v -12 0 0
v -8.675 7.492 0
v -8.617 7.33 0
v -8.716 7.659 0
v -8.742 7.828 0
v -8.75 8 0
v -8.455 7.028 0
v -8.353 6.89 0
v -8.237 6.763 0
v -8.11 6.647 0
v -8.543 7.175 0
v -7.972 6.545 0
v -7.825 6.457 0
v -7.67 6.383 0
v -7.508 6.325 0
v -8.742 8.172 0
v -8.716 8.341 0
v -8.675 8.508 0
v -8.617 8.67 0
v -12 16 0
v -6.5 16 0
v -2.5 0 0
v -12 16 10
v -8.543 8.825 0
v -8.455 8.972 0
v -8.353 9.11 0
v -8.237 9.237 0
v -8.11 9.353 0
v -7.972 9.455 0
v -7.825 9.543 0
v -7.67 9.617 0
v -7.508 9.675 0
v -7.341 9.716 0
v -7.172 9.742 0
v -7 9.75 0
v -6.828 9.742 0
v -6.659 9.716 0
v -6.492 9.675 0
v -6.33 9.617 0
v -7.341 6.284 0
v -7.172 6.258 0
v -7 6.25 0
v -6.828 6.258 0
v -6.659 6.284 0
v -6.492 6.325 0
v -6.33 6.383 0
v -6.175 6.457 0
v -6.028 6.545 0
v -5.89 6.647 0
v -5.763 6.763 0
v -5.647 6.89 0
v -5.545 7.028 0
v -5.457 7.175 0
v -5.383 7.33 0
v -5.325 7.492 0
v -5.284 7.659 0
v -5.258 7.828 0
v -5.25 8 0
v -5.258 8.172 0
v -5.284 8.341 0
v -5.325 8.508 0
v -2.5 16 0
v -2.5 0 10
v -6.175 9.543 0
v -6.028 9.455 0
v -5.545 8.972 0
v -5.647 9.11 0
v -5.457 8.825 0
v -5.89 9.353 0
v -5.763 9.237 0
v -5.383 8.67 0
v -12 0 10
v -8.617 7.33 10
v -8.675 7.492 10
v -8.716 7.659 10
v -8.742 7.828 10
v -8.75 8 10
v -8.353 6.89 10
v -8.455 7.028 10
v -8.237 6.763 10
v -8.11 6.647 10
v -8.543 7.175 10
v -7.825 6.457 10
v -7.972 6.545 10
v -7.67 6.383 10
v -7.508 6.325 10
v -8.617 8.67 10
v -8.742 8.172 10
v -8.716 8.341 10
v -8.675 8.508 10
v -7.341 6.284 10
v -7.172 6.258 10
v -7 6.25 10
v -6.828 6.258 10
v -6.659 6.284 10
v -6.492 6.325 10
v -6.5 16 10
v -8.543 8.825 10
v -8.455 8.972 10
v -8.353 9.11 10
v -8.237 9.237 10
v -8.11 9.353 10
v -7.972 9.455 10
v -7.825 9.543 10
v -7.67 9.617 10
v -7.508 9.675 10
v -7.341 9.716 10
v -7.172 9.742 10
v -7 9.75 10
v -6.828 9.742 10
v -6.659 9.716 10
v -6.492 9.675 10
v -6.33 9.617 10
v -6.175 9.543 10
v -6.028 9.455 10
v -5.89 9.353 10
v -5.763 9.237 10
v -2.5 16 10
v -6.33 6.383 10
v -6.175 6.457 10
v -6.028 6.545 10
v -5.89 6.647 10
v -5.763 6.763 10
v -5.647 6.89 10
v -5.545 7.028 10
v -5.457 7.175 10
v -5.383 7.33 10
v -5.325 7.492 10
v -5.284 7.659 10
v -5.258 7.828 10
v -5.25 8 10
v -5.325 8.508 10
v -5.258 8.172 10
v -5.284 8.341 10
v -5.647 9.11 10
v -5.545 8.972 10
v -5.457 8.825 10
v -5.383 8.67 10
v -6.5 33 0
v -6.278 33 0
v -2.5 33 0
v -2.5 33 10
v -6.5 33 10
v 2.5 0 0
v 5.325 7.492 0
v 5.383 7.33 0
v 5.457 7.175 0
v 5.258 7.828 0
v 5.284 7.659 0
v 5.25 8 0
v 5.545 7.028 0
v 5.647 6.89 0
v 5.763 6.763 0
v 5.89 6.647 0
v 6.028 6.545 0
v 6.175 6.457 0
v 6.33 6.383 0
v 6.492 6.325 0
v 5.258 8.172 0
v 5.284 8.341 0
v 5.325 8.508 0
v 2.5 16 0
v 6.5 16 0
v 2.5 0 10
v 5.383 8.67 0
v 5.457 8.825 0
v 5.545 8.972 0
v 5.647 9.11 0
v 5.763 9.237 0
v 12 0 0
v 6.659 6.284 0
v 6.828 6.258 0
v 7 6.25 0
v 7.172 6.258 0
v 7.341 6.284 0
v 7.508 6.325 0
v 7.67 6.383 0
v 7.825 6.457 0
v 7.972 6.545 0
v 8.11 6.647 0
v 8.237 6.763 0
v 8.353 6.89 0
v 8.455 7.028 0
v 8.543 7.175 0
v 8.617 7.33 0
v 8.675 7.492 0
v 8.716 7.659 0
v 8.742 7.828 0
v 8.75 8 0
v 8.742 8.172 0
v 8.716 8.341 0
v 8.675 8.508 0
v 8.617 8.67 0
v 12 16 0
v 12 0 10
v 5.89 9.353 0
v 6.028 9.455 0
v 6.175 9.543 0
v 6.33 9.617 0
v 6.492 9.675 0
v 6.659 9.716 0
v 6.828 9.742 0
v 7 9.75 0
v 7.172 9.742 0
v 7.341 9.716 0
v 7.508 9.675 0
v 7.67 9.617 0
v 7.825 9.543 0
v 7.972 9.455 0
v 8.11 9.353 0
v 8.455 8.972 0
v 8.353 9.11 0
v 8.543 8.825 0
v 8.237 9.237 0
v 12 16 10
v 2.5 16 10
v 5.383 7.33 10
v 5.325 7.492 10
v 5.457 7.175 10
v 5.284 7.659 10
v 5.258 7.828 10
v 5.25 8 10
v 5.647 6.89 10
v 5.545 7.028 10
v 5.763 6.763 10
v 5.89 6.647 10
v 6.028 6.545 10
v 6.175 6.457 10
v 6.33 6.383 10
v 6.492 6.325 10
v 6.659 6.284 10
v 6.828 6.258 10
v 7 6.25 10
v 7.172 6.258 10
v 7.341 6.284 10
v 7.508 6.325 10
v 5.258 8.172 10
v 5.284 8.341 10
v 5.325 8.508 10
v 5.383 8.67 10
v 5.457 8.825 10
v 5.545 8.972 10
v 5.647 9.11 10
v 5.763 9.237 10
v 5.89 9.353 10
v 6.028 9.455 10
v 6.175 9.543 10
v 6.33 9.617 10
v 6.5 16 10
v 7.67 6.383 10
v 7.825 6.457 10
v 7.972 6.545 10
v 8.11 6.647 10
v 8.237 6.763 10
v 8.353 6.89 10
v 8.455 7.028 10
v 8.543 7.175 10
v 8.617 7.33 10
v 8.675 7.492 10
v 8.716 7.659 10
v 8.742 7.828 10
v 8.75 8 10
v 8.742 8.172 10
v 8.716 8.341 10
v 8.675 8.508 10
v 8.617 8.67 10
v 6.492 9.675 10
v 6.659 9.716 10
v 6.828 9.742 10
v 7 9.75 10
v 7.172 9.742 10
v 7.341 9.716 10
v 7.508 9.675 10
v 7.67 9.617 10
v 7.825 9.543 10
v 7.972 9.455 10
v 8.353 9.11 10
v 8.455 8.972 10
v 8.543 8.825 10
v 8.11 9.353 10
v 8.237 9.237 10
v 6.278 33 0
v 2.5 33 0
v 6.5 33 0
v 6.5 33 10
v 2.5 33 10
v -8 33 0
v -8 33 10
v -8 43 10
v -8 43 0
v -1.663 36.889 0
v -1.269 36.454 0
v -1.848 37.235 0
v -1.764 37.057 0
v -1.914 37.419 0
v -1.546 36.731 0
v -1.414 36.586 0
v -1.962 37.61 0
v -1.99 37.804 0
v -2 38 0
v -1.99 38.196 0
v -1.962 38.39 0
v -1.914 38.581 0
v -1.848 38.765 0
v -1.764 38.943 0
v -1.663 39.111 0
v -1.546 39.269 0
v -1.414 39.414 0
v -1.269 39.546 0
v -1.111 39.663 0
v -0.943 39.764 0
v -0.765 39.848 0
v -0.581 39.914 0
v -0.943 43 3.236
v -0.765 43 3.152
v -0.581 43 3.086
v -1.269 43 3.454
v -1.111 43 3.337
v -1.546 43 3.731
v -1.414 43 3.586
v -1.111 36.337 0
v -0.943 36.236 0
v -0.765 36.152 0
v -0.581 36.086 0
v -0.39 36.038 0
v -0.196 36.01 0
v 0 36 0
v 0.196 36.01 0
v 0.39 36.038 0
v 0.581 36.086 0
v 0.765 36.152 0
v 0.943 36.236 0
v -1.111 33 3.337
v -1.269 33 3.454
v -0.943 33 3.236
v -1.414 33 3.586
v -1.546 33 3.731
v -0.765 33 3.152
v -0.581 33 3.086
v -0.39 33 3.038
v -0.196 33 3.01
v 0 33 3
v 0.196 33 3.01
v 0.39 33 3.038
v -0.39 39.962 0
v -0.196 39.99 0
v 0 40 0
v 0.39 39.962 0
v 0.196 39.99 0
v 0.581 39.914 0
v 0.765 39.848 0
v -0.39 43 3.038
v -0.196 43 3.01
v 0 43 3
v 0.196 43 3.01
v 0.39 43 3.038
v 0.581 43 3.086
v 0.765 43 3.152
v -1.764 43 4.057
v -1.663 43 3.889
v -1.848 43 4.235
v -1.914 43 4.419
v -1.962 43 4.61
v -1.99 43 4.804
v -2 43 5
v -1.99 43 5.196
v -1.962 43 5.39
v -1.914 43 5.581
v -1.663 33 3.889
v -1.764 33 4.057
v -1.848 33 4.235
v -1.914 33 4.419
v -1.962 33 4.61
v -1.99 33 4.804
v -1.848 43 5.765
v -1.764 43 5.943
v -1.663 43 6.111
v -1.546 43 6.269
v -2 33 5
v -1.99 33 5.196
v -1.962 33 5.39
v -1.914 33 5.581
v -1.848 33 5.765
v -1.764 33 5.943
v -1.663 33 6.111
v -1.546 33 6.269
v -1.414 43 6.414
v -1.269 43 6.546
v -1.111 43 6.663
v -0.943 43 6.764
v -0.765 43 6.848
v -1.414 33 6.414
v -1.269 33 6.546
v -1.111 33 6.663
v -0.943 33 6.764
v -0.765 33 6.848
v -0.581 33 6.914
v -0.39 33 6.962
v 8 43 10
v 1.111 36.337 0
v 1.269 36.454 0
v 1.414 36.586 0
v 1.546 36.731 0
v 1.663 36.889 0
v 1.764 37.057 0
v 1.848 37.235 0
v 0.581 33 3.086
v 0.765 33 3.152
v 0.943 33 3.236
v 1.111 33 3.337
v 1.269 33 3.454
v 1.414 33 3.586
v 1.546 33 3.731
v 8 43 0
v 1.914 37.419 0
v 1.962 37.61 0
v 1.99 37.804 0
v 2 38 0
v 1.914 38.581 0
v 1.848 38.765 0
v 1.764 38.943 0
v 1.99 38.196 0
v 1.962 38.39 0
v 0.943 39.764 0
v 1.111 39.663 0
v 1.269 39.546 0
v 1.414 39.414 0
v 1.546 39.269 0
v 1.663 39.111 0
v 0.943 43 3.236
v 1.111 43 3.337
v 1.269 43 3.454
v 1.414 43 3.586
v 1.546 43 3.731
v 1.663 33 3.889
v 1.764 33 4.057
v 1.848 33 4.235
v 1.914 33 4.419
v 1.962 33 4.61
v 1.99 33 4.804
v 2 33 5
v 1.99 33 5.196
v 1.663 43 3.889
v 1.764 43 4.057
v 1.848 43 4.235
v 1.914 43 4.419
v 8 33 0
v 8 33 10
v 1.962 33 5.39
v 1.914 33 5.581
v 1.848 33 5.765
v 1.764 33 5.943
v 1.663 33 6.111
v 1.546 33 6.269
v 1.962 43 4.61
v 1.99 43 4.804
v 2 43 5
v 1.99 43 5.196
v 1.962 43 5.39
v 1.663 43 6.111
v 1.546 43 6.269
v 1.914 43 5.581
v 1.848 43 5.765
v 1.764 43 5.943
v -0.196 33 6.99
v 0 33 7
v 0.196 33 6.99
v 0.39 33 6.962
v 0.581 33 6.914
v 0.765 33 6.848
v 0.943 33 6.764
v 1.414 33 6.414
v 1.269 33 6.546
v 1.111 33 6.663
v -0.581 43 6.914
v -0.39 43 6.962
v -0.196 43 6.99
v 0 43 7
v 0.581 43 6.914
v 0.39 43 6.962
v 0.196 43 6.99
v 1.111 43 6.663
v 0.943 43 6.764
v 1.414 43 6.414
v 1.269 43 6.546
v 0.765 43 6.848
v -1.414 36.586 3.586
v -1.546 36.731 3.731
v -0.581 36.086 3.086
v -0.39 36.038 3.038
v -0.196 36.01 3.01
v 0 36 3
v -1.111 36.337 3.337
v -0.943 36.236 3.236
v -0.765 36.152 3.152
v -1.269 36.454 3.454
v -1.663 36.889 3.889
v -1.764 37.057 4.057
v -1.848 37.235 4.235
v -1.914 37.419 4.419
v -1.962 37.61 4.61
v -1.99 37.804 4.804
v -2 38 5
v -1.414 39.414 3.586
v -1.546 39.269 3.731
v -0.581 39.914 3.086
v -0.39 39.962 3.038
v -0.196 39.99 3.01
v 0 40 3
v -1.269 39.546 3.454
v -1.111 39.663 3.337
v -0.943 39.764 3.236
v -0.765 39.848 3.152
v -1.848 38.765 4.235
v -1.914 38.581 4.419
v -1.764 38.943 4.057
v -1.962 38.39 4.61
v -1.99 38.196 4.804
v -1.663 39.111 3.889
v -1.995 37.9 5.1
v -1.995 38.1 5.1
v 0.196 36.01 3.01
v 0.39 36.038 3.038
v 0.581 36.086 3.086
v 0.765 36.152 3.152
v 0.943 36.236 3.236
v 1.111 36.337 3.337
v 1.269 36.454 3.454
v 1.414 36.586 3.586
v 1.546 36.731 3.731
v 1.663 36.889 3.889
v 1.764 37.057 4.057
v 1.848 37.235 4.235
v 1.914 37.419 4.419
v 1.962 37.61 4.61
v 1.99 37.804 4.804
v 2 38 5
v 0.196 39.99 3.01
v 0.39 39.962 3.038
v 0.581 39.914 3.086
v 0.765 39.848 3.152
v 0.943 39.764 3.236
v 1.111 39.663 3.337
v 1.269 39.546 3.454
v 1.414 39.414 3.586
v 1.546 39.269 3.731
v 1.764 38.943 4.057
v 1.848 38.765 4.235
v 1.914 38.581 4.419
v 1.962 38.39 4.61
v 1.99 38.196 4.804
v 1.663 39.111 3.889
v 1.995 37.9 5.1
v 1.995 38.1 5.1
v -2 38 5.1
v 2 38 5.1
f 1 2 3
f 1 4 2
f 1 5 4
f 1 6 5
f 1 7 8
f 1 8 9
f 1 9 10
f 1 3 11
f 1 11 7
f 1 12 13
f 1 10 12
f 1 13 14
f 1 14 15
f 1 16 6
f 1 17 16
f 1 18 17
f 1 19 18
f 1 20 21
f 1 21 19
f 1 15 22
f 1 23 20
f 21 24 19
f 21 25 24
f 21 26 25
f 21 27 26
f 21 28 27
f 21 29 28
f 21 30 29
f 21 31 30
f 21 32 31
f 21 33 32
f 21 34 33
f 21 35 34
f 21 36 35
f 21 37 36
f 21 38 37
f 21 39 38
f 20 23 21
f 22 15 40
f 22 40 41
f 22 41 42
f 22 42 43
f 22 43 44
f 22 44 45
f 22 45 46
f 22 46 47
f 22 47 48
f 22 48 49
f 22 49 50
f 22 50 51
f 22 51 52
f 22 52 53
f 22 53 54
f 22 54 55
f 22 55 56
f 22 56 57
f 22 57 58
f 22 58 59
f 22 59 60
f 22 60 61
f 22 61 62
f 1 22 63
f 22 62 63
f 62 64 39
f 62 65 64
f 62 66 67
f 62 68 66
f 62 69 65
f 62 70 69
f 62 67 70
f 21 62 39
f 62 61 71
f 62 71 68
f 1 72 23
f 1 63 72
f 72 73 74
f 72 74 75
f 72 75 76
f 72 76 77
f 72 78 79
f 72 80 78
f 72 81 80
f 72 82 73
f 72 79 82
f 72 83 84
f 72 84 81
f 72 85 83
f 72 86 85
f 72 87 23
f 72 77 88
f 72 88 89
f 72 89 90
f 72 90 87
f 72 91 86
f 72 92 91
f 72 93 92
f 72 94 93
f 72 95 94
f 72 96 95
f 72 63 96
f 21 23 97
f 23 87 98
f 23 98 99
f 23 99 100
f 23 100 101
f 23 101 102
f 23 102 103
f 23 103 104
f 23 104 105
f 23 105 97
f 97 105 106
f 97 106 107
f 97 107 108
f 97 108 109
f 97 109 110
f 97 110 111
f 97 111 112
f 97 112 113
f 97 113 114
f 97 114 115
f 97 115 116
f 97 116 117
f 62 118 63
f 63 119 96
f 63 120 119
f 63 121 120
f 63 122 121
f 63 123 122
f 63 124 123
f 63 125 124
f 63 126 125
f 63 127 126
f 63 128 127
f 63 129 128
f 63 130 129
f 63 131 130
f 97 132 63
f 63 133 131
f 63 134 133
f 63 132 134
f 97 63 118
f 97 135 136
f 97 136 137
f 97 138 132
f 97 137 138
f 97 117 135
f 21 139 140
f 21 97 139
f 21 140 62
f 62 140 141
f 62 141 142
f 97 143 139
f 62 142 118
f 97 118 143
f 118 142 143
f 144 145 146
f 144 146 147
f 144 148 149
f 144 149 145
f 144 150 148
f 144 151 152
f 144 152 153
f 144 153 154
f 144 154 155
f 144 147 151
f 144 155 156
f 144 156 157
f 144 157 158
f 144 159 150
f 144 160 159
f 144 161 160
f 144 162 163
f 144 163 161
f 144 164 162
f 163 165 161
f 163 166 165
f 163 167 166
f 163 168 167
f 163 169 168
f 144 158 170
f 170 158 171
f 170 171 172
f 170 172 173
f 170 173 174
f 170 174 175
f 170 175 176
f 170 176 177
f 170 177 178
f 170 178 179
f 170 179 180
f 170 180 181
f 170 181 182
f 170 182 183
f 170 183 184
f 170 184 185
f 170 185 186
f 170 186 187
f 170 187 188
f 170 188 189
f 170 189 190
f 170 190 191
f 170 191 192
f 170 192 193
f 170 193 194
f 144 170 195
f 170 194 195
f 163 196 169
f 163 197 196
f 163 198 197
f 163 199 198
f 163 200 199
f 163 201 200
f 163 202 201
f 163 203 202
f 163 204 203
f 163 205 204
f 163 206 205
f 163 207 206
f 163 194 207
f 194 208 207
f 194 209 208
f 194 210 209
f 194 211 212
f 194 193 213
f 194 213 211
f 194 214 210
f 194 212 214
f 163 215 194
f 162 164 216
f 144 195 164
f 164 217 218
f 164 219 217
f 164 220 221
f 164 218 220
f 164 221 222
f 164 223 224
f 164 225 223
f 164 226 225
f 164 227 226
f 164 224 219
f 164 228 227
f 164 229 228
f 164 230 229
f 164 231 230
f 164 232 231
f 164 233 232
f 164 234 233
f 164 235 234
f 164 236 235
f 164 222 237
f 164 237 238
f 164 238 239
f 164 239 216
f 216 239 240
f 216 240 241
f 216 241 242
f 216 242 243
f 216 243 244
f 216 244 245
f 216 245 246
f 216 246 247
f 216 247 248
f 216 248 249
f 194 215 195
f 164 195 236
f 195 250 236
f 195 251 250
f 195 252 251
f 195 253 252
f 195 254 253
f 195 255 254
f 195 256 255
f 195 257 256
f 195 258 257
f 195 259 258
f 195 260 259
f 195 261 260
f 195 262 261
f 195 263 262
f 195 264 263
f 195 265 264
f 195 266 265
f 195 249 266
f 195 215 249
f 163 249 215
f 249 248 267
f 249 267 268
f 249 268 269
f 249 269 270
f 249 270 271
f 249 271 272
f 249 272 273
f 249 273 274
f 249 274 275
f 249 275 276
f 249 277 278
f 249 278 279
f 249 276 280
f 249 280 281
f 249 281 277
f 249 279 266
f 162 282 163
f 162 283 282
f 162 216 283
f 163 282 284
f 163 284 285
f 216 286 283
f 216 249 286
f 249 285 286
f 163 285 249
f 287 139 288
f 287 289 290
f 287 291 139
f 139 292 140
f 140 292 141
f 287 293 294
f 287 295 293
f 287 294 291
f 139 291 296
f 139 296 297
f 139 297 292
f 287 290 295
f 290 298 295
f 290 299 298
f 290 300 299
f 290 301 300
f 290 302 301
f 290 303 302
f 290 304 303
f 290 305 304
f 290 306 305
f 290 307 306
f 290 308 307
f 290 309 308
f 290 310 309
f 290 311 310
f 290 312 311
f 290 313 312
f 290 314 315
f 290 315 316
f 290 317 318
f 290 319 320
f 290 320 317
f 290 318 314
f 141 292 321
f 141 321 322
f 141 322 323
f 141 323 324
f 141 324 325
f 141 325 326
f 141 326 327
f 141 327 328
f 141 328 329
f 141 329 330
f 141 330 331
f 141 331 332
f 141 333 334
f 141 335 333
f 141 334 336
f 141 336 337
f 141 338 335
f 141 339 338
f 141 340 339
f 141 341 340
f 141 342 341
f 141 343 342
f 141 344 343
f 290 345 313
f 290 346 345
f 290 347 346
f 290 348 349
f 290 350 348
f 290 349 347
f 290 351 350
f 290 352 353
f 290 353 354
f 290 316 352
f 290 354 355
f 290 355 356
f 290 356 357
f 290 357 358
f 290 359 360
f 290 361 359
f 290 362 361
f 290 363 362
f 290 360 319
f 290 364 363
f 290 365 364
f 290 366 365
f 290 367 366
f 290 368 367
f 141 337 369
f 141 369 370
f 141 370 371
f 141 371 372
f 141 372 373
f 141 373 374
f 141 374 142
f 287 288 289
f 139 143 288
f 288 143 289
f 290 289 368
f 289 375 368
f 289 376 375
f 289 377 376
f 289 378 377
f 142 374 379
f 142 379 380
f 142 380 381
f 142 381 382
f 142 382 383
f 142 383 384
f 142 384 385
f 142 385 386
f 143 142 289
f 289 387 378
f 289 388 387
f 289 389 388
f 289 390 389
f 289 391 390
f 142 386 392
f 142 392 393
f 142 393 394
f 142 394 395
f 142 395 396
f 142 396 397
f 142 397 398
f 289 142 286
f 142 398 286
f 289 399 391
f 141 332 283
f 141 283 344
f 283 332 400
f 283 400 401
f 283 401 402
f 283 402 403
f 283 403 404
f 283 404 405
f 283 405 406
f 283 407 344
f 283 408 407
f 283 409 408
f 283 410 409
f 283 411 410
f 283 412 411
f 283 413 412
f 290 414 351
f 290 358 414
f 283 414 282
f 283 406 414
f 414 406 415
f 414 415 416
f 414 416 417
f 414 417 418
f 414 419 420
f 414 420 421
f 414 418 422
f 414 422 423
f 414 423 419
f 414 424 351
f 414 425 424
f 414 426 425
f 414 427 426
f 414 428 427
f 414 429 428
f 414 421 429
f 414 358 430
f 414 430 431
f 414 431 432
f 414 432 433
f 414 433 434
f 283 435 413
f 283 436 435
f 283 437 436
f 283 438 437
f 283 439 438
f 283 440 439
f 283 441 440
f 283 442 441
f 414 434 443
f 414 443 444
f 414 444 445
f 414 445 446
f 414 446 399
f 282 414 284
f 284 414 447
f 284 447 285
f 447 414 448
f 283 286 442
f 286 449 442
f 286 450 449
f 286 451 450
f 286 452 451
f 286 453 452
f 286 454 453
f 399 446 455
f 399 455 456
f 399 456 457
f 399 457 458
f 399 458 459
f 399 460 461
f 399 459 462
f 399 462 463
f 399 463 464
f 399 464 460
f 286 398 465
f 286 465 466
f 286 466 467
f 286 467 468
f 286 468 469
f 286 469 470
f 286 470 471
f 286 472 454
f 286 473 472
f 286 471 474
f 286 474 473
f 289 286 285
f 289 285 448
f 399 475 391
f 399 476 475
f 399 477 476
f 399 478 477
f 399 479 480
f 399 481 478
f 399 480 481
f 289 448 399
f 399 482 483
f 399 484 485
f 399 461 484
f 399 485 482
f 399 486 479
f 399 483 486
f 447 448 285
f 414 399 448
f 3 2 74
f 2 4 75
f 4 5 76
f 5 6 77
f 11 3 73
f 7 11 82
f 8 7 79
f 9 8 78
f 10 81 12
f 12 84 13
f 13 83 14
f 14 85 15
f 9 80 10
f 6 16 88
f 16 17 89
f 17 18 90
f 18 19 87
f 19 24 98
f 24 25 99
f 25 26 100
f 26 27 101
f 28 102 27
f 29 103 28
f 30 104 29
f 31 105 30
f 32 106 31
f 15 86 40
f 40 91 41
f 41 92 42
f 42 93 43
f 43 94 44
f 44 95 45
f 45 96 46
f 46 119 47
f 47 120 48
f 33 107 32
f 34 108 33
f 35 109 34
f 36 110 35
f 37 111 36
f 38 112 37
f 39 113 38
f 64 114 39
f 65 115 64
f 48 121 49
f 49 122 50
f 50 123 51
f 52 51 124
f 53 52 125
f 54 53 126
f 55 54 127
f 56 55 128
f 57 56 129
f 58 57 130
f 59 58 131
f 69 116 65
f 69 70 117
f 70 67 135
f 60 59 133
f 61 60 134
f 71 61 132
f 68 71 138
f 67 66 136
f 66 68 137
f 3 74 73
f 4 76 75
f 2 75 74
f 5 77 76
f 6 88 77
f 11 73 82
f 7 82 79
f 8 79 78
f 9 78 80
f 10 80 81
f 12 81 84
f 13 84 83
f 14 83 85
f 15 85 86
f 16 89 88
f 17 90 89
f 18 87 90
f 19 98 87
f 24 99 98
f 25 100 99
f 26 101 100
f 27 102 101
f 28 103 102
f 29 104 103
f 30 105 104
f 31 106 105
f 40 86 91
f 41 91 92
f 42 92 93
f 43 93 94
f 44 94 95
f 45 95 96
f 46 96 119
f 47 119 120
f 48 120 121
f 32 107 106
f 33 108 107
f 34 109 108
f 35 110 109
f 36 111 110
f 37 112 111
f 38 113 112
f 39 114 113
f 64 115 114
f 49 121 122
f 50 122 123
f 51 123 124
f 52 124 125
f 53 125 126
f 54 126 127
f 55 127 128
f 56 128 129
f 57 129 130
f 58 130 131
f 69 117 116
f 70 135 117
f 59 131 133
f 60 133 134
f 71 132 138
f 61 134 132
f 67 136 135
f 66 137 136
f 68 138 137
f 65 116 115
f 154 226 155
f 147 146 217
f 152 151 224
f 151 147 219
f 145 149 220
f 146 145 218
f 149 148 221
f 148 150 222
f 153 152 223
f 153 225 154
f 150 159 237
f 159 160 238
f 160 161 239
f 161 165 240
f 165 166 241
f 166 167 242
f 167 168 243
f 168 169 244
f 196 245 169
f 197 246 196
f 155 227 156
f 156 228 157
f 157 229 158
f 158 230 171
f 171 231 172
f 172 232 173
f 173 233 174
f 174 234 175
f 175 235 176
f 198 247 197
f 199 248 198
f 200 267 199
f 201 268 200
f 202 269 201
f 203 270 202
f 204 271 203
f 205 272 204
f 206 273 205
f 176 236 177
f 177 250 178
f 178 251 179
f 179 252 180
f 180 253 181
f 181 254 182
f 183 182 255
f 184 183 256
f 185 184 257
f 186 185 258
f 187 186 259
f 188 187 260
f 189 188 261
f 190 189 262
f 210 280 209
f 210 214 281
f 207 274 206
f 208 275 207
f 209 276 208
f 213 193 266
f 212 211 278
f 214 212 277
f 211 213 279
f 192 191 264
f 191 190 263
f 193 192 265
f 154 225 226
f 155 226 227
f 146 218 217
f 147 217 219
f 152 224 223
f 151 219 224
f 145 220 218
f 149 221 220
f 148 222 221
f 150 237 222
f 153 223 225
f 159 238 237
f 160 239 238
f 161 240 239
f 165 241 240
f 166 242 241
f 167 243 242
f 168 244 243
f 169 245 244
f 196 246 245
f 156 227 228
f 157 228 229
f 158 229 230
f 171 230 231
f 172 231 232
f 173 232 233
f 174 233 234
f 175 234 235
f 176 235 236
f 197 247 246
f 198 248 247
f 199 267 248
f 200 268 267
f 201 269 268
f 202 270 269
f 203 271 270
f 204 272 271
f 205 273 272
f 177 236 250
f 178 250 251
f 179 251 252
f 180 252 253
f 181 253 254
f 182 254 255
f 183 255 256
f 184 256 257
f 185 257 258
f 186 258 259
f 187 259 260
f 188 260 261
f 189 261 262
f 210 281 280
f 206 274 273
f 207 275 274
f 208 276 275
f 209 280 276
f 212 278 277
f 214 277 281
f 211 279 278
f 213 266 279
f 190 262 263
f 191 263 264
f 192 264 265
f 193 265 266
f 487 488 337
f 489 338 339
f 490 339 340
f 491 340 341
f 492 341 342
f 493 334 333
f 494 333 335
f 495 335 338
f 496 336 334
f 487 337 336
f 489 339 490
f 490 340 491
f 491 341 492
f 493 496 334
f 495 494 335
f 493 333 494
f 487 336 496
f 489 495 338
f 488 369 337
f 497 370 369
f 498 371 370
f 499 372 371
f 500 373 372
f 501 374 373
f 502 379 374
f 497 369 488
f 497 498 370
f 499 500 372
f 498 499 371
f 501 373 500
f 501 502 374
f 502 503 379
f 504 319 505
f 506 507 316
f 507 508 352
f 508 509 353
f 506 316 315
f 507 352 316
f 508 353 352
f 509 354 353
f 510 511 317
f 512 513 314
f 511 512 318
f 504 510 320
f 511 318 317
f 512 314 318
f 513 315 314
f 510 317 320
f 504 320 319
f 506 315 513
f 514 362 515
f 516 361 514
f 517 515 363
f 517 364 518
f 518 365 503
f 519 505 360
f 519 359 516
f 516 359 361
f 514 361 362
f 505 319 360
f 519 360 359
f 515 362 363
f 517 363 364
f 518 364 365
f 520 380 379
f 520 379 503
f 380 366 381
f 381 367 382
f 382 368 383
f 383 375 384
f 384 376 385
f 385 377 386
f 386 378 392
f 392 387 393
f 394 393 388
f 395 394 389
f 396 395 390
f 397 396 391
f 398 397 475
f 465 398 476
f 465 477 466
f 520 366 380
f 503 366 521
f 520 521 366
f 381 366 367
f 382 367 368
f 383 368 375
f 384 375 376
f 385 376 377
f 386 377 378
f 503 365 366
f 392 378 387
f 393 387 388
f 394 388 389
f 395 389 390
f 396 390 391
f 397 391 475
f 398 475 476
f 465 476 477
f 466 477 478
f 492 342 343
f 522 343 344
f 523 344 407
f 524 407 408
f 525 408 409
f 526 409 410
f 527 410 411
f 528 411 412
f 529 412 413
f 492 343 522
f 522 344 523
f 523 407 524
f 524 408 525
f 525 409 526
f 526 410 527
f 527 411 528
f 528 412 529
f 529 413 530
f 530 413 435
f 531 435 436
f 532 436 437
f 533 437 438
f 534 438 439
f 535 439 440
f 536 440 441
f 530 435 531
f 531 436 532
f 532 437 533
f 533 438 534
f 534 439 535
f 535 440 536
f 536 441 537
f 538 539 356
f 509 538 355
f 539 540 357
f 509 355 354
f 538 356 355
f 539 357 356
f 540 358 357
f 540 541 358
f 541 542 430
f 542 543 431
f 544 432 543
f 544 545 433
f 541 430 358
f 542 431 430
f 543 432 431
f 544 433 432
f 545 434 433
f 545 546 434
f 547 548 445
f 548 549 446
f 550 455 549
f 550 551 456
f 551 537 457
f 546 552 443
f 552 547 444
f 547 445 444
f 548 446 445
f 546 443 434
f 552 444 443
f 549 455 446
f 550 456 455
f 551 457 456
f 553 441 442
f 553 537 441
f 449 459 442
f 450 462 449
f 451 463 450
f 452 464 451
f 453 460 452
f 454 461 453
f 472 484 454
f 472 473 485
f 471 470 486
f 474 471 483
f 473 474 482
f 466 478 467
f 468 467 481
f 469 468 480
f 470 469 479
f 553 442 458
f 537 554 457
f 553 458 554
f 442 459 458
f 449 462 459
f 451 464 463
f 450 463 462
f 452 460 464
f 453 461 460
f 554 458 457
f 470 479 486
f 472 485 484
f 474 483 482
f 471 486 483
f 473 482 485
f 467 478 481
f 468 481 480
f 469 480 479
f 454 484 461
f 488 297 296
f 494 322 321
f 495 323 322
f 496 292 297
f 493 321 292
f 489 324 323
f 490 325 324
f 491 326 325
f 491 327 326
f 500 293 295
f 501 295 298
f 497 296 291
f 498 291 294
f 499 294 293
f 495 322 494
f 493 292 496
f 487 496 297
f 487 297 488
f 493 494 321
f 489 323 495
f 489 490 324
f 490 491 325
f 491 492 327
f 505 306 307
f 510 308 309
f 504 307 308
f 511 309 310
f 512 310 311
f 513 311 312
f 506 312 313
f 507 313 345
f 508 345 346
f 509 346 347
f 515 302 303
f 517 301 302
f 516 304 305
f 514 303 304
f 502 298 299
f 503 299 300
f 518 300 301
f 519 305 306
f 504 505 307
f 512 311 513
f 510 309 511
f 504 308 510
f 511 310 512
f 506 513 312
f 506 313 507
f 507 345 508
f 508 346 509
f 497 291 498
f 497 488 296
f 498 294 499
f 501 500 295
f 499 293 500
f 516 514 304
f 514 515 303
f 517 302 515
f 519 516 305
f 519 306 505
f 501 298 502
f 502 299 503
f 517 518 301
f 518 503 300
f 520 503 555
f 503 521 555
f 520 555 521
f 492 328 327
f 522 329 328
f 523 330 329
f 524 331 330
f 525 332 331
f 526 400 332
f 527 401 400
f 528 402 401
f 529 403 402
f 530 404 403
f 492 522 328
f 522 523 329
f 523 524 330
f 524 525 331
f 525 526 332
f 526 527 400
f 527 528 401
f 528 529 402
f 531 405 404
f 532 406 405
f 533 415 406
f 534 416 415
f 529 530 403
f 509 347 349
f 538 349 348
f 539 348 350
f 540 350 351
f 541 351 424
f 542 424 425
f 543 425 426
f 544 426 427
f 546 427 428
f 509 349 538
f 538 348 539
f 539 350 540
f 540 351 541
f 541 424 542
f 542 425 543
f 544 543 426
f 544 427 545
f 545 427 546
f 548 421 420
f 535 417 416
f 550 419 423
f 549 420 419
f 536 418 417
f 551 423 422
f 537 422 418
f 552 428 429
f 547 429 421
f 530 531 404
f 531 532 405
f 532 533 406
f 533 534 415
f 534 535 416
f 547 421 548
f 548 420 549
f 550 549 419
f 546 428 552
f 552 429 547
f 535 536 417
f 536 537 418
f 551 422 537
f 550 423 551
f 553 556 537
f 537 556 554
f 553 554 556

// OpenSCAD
// file: string_mount_parameters.scad
// Stage 3 string-pull redesign. Millimetres. Edit after physical fit checks.
// The earlier rigid bell-crank files remain unchanged for reference.
include <parameters.scad>

sm_plate_w = 96; // PROPOSED, within measured 100 mm flat rear width
sm_plate_h = 96; // PROPOSED, within measured 100 mm flat rear height
sm_plate_t = 4;
sm_plate_corner_r = 5;
sm_rear_gap = 6; // PROPOSED, ~5 mm rib plus nominal 1 mm clearance
sm_bin_mount_x = 41; // PROVISIONAL: plate becomes rear-wall drilling template
sm_bin_mount_y = 0; // PROVISIONAL: vertical hole datum
sm_bin_slot_d = 3.5; // M3 clearance, tune to real bolt/print
sm_bin_slot_length = 3.5; // round M3 hole; use plate to mark drill positions
sm_bin_wall_t = rim_thickness; // 3 mm measured elsewhere; verify here
sm_m3_clearance = 3.5;
sm_m3_nut_af = 5.8; // PROVISIONAL, check actual nut
sm_m3_nut_pocket_depth = 2.5;

// Component layout on ONE integrated main holder. PROVISIONAL until fitted.
sm_servo_cx = -26;
sm_nano_cx = 20;
sm_nano_cy = 25;
sm_cell_cx = 0;
sm_cell_cy = -26.5;

// Servo shelf: catalogue body envelope from TowerPro; ear pitch UNMEASURED.
sm_servo_body_slot_x = servo_body_x + 0.7;
sm_servo_body_slot_z = servo_body_y + 0.7;
sm_servo_ear_pitch = servo_ear_hole_pitch;
sm_servo_ear_hole_d = servo_ear_screw_d;
sm_servo_finger_t = 5; // along Y
sm_servo_finger_z1 = 33; // from component-facing plate base Z=4
sm_servo_axis_z = 17;
sm_servo_string_radius = 14; // PROVISIONAL horn hole radius
sm_horn_plane_y = 30; // PROVISIONAL distance up plate to the horn plane
sm_horn_closed_deg = 90; // PROVISIONAL, not bench verified
sm_plate_center_world_z = 150; // PROVISIONAL placement on measured rear flat
sm_hinge_world_z = 200; // simplified bin-height hinge datum

// Nano Classic board is published as 45 x 18 mm. The user's board appears
// mounted on another carrier, whose full envelope has NOT been measured.
sm_nano_board_l = 45;
sm_nano_board_w = 18;
sm_nano_pad_h = 3; // clearance for underside solder joints
sm_nano_strap_slot_w = 3.2;

// 21700 dimensions vary by exact cell and holder. This only supports a
// separate insulated cell holder or protected mechanical retention setup.
sm_cell_reference_d = 21.8; // PROVISIONAL generous cell envelope
sm_cell_reference_l = 71.5; // PROVISIONAL generous cell envelope
sm_cell_saddle_l = 82; // PROPOSED integrated rail length
sm_cell_saddle_w = 25;
sm_cell_side_rail_h = 7;
sm_cell_strap_slot_w = 3.2;

// Removable fixed guide arm. This extends above the rear plate; its full
// clearance to the lid has NOT been measured. It is a string guide, not a
// rotating load-bearing lever. The board holes also use M3 hardware.
sm_arm_center_x = sm_servo_cx + sm_servo_string_radius;
sm_arm_base_y = 34;
sm_arm_bolt_pitch = 14;
sm_arm_bolt_y = sm_arm_base_y + 8;
sm_arm_standoff_h = 8; // plate 4 + standoff 8 + arm centre 5 = horn Z 17
sm_arm_t = 10;
sm_arm_tip_y = 72; // PROVISIONAL, 24 mm above 96 mm plate upper edge
sm_string_guide_hole_d = 4;
// String lid anchor position, hinge height and lid mass are UNMEASURED.
// These values only generate a marked hand-fit tab, not a powered design.
sm_lid_anchor_hole_spacing = 40; // PROVISIONAL; fit to the existing lid holes
sm_lid_rear_hole_from_hinge = 20; // PROVISIONAL location of rear existing hole
sm_lid_tie_from_hinge = 10; // PROVISIONAL line tie; travel feasibility depends on it
sm_lid_tie_above_lid = 3; // top-side eye; underside eye crosses lid
sm_lid_anchor_hole_d = 3.5; // only if real holes accept suitable fasteners
sm_lid_anchor_plate_t = 3.2;
sm_lid_anchor_string_d = 2.2; // for ~1 mm nonstretch line; polish printed bore
// main file
// Removable, fixed string-guide arm on the Stage 3 rear plate.
// The original servo horn pulls the line; this arm does not rotate.
include <string_mount_parameters.scad>
$fn=64;
part="arm"; // arm | standoff | preview

arm_base_l=16;
arm_tip_local_y=sm_arm_tip_y-sm_arm_base_y;
arm_tip_start=arm_tip_local_y-5;
arm_channel_half=2.5;
arm_base_half=sm_arm_bolt_pitch/2+5;

assert(arm_tip_local_y>arm_base_l+12);
assert(sm_arm_bolt_pitch/2-sm_m3_clearance/2 > arm_channel_half+1);

module guide_arm() {
    difference() {
        union() {
            // Split heel and rails leave a continuous, open cord channel.
            for (side=[-1,1]) {
                translate([side<0 ? -arm_base_half : arm_channel_half,0,0])
                    cube([arm_base_half-arm_channel_half,arm_base_l,sm_arm_t]);
                translate([side<0 ? -6.5 : arm_channel_half,
                           arm_base_l-4,0])
                    cube([4,arm_tip_start-(arm_base_l-4)+1,sm_arm_t]);
            }
            // A round-edged exit can be polished after printing.
            translate([-8,arm_tip_start,0])
                cube([16,10,sm_arm_t]);
        }
        for (side=[-1,1])
            translate([side*sm_arm_bolt_pitch/2,8,-0.1])
                cylinder(d=sm_m3_clearance,h=sm_arm_t+0.2);
        translate([0,arm_tip_start-0.1,sm_arm_t/2])
            rotate([-90,0,0])
                cylinder(d=sm_string_guide_hole_d,h=10.2);
        // A second bore turns the line toward the moving lid. Both bores
        // intersect at the eye centre; polish the 90-degree inside corner.
        translate([0,arm_tip_local_y,-0.1])
            cylinder(d=sm_string_guide_hole_d,h=sm_arm_t/2+0.2);
    }
}

module guide_standoff() {
    difference() {
        cylinder(d=8,h=sm_arm_standoff_h);
        translate([0,0,-0.1])
            cylinder(d=sm_m3_clearance,h=sm_arm_standoff_h+0.2);
    }
}

if (part=="arm") guide_arm();
else if (part=="standoff") guide_standoff();
else if (part=="preview") {
    color([0.98,0.60,0.12])
        translate([sm_arm_center_x,sm_arm_base_y,
                   sm_plate_t+sm_arm_standoff_h]) guide_arm();
    for (side=[-1,1])
        color([0.8,0.8,0.8])
            translate([sm_arm_center_x+side*sm_arm_bolt_pitch/2,
                       sm_arm_bolt_y,sm_plate_t]) guide_standoff();
}
